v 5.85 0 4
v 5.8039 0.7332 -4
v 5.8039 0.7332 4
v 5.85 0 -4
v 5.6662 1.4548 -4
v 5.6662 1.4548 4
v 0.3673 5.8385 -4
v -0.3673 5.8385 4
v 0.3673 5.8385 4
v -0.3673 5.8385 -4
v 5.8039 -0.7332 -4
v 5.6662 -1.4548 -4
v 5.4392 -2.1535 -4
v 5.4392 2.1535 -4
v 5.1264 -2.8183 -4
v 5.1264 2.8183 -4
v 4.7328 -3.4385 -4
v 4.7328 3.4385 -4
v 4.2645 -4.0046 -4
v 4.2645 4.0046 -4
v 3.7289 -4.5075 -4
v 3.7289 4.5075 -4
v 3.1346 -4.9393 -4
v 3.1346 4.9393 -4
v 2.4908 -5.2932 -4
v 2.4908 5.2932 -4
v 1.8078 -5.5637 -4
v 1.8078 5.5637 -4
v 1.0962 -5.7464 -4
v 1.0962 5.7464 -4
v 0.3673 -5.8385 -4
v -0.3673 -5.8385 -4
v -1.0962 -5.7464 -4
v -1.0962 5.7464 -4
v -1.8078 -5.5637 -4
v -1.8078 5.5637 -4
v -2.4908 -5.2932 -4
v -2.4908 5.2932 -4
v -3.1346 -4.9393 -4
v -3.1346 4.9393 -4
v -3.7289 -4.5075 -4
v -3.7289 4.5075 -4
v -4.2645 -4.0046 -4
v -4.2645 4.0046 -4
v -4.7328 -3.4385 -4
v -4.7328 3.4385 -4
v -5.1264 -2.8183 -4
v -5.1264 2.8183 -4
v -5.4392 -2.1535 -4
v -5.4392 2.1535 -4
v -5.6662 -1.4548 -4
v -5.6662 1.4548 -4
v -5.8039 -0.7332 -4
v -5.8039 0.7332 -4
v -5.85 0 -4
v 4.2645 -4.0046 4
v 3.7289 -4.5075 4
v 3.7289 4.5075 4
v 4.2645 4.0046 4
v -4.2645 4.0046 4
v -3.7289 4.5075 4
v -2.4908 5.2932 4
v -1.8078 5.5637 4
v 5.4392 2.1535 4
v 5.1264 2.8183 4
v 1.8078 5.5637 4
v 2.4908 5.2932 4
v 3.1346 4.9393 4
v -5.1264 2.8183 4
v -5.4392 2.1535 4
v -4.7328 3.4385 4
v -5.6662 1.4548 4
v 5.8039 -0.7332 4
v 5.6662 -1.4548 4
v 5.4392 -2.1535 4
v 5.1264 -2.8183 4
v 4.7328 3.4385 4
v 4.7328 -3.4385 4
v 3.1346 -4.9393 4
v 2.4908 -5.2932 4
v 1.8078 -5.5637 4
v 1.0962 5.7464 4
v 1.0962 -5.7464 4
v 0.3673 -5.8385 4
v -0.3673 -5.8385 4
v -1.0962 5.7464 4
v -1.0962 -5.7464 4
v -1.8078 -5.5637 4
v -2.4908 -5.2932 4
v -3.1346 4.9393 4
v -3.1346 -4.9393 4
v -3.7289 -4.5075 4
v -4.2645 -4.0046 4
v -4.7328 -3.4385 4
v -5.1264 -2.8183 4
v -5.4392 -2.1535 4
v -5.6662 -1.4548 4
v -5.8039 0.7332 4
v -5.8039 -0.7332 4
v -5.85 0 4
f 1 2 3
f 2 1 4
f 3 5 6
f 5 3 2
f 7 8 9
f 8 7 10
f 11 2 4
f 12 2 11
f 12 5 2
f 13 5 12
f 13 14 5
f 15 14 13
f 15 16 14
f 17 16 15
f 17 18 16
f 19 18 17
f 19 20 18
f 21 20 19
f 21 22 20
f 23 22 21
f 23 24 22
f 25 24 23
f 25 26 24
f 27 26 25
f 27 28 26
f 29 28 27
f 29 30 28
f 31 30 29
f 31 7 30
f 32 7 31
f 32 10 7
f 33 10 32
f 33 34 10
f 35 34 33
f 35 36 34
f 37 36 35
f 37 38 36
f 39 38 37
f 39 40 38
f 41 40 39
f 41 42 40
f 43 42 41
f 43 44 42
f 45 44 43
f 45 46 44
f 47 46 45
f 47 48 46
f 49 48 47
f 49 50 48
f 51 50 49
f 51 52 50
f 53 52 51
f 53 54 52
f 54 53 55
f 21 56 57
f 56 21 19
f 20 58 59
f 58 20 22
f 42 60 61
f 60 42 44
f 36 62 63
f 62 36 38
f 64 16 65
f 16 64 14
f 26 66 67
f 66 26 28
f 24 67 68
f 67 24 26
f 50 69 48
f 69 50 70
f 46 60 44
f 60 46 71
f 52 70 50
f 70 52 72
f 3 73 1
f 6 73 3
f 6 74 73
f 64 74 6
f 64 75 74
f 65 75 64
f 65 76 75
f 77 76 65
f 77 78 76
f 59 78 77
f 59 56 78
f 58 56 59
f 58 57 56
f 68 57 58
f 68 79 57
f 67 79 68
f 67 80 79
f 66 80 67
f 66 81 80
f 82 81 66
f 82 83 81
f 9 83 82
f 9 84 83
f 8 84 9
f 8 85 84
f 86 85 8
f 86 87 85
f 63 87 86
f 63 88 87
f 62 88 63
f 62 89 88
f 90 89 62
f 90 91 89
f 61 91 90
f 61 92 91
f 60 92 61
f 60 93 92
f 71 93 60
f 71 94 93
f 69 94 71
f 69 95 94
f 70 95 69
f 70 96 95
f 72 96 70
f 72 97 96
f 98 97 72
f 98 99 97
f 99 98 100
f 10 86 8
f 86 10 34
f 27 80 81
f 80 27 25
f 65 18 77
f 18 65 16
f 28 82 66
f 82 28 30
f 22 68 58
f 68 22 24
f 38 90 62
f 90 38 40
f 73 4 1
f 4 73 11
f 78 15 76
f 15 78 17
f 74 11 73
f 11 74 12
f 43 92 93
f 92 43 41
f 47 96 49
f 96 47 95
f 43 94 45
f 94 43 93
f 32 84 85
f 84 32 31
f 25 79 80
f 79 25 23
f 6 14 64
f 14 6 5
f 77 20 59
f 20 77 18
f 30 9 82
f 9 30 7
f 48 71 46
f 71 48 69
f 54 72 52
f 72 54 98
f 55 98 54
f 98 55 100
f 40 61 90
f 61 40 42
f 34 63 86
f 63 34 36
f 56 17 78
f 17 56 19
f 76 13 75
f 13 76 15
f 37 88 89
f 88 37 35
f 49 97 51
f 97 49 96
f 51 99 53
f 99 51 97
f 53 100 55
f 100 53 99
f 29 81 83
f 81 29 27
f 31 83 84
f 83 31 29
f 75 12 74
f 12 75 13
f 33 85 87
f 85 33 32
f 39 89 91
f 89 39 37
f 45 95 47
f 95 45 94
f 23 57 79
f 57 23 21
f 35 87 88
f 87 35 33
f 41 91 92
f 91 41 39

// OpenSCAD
$fn = 50;


difference() {
	union() {
		translate(v = [0, 0, -4.0000000000]) {
			cylinder(h = 8, r = 5.8500000000);
		}
	}
	union() {
		translate(v = [0, 0, -100.0000000000]) {
			cylinder(h = 200, r = 0);
		}
	}
}
